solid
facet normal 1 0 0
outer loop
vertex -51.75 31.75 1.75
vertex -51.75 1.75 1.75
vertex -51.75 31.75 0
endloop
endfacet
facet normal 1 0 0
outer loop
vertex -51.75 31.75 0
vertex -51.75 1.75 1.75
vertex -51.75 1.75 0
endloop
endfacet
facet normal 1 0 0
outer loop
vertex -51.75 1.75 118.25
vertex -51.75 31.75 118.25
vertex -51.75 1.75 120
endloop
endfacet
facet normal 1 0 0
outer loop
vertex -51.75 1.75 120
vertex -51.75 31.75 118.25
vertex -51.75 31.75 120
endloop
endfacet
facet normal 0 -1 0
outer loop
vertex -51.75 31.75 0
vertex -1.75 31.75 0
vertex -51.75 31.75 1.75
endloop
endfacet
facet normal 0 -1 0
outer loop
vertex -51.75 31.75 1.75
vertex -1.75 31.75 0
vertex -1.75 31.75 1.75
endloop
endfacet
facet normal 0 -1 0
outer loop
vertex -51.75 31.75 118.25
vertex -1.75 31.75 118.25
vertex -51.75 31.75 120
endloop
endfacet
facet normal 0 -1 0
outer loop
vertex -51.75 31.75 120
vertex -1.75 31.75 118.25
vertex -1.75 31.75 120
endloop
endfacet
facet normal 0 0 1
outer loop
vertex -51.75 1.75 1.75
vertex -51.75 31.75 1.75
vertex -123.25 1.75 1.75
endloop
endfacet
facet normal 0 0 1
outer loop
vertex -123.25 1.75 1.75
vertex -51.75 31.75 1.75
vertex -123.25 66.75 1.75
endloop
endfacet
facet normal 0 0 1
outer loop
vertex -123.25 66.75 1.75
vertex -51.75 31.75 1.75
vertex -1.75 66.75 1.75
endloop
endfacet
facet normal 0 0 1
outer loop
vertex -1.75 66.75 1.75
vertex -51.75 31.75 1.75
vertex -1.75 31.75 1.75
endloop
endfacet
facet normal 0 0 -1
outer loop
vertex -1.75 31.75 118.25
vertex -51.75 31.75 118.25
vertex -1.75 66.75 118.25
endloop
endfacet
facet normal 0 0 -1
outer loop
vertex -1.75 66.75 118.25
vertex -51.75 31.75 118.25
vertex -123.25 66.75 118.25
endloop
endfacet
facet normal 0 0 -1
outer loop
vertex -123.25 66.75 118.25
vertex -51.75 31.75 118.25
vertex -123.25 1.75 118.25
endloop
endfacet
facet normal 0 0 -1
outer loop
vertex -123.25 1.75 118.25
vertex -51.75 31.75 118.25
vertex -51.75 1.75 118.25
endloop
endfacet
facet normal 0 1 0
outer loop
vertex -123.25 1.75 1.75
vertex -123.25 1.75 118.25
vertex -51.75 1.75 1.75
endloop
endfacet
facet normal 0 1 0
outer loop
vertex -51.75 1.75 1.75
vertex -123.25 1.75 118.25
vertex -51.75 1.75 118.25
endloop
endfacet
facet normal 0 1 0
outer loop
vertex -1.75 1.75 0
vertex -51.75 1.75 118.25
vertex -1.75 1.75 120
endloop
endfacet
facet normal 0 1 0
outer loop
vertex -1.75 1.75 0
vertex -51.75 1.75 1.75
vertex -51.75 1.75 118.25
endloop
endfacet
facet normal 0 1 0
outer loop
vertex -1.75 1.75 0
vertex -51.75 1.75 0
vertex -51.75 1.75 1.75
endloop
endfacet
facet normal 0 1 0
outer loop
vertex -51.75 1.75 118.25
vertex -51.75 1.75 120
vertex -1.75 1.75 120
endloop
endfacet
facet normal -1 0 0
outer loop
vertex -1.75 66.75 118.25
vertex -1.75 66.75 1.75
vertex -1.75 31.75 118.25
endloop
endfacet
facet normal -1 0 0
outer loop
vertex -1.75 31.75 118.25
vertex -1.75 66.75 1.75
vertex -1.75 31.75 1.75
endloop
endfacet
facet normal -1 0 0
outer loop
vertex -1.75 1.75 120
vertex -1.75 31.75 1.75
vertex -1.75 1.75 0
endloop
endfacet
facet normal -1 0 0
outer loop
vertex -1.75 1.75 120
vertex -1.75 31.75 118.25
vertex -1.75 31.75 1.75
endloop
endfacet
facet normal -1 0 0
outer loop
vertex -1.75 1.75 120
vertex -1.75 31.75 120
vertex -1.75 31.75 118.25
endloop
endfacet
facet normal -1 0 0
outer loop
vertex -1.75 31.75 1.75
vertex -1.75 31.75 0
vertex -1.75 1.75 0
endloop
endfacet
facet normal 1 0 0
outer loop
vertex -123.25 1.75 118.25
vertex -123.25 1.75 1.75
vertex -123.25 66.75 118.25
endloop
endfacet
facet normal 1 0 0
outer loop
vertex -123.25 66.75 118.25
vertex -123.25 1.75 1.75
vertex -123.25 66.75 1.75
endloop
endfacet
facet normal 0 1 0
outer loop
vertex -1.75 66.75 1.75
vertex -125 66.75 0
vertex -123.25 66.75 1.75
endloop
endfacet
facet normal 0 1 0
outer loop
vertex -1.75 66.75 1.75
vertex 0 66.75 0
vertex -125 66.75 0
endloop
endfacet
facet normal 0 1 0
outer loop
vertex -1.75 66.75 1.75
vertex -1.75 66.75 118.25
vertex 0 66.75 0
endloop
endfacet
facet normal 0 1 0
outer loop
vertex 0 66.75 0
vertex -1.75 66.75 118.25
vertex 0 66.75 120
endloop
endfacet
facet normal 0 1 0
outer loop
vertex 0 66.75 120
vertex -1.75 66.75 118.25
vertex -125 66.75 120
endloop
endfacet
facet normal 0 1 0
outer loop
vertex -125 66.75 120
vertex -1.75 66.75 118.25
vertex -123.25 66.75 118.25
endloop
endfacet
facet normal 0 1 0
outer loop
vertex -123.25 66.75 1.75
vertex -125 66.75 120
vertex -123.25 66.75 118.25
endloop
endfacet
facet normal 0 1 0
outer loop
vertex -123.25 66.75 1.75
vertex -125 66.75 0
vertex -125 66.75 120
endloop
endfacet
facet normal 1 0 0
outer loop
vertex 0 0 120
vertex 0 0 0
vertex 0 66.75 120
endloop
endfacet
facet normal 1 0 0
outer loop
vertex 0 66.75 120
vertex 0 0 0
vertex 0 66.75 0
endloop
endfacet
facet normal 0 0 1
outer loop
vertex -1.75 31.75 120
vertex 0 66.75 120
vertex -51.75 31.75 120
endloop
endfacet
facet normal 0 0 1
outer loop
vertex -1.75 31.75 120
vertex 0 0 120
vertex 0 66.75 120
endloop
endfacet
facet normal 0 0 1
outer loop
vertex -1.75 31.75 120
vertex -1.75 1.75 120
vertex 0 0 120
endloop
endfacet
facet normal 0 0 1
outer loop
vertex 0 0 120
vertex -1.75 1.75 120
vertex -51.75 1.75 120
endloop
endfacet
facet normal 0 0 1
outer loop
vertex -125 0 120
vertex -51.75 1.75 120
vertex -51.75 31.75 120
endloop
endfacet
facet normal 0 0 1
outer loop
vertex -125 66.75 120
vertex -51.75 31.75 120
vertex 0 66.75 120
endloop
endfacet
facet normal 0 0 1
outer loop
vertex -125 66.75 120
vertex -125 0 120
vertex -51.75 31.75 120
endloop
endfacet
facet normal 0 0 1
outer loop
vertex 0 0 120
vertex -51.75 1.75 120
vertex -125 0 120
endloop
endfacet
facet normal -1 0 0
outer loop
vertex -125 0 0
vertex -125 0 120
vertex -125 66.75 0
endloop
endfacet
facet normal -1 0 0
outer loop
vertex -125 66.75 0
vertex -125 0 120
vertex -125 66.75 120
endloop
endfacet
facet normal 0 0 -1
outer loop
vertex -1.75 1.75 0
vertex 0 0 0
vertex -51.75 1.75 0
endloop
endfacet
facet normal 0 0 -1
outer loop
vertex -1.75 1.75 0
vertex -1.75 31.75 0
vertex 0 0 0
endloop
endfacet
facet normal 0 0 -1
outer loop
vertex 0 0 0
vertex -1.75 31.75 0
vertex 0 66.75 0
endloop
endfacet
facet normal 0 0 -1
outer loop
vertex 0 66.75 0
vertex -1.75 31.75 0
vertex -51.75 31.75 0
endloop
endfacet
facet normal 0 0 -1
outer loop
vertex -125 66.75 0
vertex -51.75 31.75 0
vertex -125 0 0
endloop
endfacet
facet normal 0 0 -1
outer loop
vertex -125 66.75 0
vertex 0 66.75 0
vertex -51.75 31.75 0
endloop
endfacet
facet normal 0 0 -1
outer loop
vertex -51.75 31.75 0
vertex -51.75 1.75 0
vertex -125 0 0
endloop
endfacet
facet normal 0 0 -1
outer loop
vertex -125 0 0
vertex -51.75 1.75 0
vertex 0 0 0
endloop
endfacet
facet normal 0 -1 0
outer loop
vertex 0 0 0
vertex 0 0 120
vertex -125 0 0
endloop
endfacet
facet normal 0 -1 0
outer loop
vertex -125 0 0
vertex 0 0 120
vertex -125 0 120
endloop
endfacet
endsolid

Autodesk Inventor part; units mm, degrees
ref_plane "YZ Plane" through (0, 0, 0) normal (1, 0, 0) x (0, 1, 0)
ref_plane "XZ Plane" through (0, 0, 0) normal (0, 1, 0) x (-1, 0, 0)
ref_plane "XY Plane" through (0, 0, 0) normal (0, 0, 1) x (1, 0, 0)
sketch "Sketch1" plane through (0, 0, 0) normal (0, 1, 0) x (-1, 0, 0)
  line L0 (0, 0) -> (125, 0)
  line L1 (125, 0) -> (125, 120)
  line L2 (125, 120) -> (0, 120)
  line L3 (0, 120) -> (0, 0)
  dimension "d0" = 125
  dimension "d1" = 120
extrude "Extrusion1" add sketch "Sketch1" along normal blind 1.75
sketch "Sketch2" plane through (0, 1.75, 0) normal (0, 1, 0) x (1, 0, 0)
  line L0 (0, 0) -> (-125, 0) projected
  line L1 (-125, 0) -> (-125, -120) projected
  line L2 (-125, -120) -> (0, -120) projected
  line L3 (0, -120) -> (0, 0) projected
  line L4 (-125, 0) -> (-119.2077, 0)
  line L5 (-125, -4.4946) -> (-125, 0)
  line L6 (-125, 0) -> (-123.25, 0)
  line L7 (-123.25, 0) -> (-123.25, -1.75)
  line L8 (-123.25, -1.75) -> (-125, -1.75)
  line L9 (-125, -1.75) -> (-125, 0)
  line L10 (0, -120) -> (-1.75, -120)
  line L11 (-1.75, -120) -> (-1.75, -118.25)
  line L12 (-1.75, -118.25) -> (0, -118.25)
  line L13 (0, -118.25) -> (0, -120)
  line L14 (-1.75, -118.25) -> (-123.25, -118.25)
  line L15 (-123.25, -118.25) -> (-123.25, -1.75)
  line L16 (-123.25, -1.75) -> (-1.75, -1.75)
  line L17 (-1.75, -1.75) -> (-1.75, -118.25)
  dimension "d4" = 1.75
  dimension "d5" = 1.75
  dimension "d6" = 1.75
  dimension "d7" = 1.75
extrude "Extrusion2" add sketch "Sketch2" along normal blind 65 contours L3 L12 L17 L16 L7 L0 | L3 L2 L11 L12 | L7 L8 L1 L0 | L11 L2 L1 L8 L15 L14
sketch "Sketch3" plane through (0, 0, 120) normal (1, 0, 0) x (0, 0, -1)
  line L0 (0, 0) -> (120, 0) projected
  line L1 (120, 0) -> (120, 66.75) projected
  line L2 (0, 66.75) -> (120, 66.75) projected
  line L3 (0, 0) -> (0, 66.75) projected
sketch "Sketch4" plane through (0, 0, 0) normal (0, 0, -1) x (-1, 0, 0)
  line L0 (0, 0) -> (1.75, 0)
  line L1 (1.75, 0) -> (1.75, 30)
  line L2 (1.75, 30) -> (0, 30)
  line L3 (0, 30) -> (0, 0)
  line L4 (1.75, 30) -> (16.75, 30)
  line L5 (16.75, 30) -> (16.75, 0)
  line L6 (16.75, 0) -> (1.75, 0)
  line L7 (1.75, 0) -> (1.75, 30)
  line L8 (0, 0) -> (55, 0)
  line L9 (55, 0) -> (55, 1.75)
  line L10 (55, 1.75) -> (0, 1.75)
  line L11 (0, 1.75) -> (0, 0)
  line L12 (16.75, 1.75) -> (46.75, 1.75)
  line L13 (46.75, 1.75) -> (46.75, 30)
  line L14 (46.75, 30) -> (16.75, 30)
  line L15 (16.75, 30) -> (16.75, 1.75)
  dimension "d10" = 1.75
  dimension "d11" = 30
  dimension "d12" = 15
  dimension "d13" = 30
  dimension "d14" = 55
  dimension "d15" = 1.75
  dimension "d16" = 30
extrude "Extrusion3" cut sketch "Sketch4" against normal blind 4 contours L5 L14 L13 L10
sketch "Sketch5" plane through (-125, 0, 120) normal (0, 0, 1) x (1, 0, 0)
  line L0 (125, 0) -> (125, 66.75) projected
  line L1 (0, 66.75) -> (125, 66.75) projected
  line L2 (0, 0) -> (125, 0)
  line L3 (125, 0) -> (125, 1.75)
  line L4 (125, 1.75) -> (0, 1.75)
  line L5 (0, 1.75) -> (0, 0)
  line L6 (125, 1.75) -> (123.25, 1.75)
  line L7 (123.25, 1.75) -> (123.25, 66.75)
  line L8 (123.25, 66.75) -> (125, 66.75)
  line L9 (125, 66.75) -> (125, 1.75)
  line L10 (123.25, 1.75) -> (73.25, 1.75)
  line L11 (73.25, 1.75) -> (73.25, 31.75)
  line L12 (73.25, 31.75) -> (123.25, 31.75)
  line L13 (123.25, 31.75) -> (123.25, 1.75)
  dimension "d19" = 1.75
  dimension "d20" = 1.75
  dimension "d21" = 50
  dimension "d22" = 30
extrude "Extrusion4" cut sketch "Sketch5" against normal blind 8621077.25 contours L4 L11 L12 L7
properties part number "Case"
